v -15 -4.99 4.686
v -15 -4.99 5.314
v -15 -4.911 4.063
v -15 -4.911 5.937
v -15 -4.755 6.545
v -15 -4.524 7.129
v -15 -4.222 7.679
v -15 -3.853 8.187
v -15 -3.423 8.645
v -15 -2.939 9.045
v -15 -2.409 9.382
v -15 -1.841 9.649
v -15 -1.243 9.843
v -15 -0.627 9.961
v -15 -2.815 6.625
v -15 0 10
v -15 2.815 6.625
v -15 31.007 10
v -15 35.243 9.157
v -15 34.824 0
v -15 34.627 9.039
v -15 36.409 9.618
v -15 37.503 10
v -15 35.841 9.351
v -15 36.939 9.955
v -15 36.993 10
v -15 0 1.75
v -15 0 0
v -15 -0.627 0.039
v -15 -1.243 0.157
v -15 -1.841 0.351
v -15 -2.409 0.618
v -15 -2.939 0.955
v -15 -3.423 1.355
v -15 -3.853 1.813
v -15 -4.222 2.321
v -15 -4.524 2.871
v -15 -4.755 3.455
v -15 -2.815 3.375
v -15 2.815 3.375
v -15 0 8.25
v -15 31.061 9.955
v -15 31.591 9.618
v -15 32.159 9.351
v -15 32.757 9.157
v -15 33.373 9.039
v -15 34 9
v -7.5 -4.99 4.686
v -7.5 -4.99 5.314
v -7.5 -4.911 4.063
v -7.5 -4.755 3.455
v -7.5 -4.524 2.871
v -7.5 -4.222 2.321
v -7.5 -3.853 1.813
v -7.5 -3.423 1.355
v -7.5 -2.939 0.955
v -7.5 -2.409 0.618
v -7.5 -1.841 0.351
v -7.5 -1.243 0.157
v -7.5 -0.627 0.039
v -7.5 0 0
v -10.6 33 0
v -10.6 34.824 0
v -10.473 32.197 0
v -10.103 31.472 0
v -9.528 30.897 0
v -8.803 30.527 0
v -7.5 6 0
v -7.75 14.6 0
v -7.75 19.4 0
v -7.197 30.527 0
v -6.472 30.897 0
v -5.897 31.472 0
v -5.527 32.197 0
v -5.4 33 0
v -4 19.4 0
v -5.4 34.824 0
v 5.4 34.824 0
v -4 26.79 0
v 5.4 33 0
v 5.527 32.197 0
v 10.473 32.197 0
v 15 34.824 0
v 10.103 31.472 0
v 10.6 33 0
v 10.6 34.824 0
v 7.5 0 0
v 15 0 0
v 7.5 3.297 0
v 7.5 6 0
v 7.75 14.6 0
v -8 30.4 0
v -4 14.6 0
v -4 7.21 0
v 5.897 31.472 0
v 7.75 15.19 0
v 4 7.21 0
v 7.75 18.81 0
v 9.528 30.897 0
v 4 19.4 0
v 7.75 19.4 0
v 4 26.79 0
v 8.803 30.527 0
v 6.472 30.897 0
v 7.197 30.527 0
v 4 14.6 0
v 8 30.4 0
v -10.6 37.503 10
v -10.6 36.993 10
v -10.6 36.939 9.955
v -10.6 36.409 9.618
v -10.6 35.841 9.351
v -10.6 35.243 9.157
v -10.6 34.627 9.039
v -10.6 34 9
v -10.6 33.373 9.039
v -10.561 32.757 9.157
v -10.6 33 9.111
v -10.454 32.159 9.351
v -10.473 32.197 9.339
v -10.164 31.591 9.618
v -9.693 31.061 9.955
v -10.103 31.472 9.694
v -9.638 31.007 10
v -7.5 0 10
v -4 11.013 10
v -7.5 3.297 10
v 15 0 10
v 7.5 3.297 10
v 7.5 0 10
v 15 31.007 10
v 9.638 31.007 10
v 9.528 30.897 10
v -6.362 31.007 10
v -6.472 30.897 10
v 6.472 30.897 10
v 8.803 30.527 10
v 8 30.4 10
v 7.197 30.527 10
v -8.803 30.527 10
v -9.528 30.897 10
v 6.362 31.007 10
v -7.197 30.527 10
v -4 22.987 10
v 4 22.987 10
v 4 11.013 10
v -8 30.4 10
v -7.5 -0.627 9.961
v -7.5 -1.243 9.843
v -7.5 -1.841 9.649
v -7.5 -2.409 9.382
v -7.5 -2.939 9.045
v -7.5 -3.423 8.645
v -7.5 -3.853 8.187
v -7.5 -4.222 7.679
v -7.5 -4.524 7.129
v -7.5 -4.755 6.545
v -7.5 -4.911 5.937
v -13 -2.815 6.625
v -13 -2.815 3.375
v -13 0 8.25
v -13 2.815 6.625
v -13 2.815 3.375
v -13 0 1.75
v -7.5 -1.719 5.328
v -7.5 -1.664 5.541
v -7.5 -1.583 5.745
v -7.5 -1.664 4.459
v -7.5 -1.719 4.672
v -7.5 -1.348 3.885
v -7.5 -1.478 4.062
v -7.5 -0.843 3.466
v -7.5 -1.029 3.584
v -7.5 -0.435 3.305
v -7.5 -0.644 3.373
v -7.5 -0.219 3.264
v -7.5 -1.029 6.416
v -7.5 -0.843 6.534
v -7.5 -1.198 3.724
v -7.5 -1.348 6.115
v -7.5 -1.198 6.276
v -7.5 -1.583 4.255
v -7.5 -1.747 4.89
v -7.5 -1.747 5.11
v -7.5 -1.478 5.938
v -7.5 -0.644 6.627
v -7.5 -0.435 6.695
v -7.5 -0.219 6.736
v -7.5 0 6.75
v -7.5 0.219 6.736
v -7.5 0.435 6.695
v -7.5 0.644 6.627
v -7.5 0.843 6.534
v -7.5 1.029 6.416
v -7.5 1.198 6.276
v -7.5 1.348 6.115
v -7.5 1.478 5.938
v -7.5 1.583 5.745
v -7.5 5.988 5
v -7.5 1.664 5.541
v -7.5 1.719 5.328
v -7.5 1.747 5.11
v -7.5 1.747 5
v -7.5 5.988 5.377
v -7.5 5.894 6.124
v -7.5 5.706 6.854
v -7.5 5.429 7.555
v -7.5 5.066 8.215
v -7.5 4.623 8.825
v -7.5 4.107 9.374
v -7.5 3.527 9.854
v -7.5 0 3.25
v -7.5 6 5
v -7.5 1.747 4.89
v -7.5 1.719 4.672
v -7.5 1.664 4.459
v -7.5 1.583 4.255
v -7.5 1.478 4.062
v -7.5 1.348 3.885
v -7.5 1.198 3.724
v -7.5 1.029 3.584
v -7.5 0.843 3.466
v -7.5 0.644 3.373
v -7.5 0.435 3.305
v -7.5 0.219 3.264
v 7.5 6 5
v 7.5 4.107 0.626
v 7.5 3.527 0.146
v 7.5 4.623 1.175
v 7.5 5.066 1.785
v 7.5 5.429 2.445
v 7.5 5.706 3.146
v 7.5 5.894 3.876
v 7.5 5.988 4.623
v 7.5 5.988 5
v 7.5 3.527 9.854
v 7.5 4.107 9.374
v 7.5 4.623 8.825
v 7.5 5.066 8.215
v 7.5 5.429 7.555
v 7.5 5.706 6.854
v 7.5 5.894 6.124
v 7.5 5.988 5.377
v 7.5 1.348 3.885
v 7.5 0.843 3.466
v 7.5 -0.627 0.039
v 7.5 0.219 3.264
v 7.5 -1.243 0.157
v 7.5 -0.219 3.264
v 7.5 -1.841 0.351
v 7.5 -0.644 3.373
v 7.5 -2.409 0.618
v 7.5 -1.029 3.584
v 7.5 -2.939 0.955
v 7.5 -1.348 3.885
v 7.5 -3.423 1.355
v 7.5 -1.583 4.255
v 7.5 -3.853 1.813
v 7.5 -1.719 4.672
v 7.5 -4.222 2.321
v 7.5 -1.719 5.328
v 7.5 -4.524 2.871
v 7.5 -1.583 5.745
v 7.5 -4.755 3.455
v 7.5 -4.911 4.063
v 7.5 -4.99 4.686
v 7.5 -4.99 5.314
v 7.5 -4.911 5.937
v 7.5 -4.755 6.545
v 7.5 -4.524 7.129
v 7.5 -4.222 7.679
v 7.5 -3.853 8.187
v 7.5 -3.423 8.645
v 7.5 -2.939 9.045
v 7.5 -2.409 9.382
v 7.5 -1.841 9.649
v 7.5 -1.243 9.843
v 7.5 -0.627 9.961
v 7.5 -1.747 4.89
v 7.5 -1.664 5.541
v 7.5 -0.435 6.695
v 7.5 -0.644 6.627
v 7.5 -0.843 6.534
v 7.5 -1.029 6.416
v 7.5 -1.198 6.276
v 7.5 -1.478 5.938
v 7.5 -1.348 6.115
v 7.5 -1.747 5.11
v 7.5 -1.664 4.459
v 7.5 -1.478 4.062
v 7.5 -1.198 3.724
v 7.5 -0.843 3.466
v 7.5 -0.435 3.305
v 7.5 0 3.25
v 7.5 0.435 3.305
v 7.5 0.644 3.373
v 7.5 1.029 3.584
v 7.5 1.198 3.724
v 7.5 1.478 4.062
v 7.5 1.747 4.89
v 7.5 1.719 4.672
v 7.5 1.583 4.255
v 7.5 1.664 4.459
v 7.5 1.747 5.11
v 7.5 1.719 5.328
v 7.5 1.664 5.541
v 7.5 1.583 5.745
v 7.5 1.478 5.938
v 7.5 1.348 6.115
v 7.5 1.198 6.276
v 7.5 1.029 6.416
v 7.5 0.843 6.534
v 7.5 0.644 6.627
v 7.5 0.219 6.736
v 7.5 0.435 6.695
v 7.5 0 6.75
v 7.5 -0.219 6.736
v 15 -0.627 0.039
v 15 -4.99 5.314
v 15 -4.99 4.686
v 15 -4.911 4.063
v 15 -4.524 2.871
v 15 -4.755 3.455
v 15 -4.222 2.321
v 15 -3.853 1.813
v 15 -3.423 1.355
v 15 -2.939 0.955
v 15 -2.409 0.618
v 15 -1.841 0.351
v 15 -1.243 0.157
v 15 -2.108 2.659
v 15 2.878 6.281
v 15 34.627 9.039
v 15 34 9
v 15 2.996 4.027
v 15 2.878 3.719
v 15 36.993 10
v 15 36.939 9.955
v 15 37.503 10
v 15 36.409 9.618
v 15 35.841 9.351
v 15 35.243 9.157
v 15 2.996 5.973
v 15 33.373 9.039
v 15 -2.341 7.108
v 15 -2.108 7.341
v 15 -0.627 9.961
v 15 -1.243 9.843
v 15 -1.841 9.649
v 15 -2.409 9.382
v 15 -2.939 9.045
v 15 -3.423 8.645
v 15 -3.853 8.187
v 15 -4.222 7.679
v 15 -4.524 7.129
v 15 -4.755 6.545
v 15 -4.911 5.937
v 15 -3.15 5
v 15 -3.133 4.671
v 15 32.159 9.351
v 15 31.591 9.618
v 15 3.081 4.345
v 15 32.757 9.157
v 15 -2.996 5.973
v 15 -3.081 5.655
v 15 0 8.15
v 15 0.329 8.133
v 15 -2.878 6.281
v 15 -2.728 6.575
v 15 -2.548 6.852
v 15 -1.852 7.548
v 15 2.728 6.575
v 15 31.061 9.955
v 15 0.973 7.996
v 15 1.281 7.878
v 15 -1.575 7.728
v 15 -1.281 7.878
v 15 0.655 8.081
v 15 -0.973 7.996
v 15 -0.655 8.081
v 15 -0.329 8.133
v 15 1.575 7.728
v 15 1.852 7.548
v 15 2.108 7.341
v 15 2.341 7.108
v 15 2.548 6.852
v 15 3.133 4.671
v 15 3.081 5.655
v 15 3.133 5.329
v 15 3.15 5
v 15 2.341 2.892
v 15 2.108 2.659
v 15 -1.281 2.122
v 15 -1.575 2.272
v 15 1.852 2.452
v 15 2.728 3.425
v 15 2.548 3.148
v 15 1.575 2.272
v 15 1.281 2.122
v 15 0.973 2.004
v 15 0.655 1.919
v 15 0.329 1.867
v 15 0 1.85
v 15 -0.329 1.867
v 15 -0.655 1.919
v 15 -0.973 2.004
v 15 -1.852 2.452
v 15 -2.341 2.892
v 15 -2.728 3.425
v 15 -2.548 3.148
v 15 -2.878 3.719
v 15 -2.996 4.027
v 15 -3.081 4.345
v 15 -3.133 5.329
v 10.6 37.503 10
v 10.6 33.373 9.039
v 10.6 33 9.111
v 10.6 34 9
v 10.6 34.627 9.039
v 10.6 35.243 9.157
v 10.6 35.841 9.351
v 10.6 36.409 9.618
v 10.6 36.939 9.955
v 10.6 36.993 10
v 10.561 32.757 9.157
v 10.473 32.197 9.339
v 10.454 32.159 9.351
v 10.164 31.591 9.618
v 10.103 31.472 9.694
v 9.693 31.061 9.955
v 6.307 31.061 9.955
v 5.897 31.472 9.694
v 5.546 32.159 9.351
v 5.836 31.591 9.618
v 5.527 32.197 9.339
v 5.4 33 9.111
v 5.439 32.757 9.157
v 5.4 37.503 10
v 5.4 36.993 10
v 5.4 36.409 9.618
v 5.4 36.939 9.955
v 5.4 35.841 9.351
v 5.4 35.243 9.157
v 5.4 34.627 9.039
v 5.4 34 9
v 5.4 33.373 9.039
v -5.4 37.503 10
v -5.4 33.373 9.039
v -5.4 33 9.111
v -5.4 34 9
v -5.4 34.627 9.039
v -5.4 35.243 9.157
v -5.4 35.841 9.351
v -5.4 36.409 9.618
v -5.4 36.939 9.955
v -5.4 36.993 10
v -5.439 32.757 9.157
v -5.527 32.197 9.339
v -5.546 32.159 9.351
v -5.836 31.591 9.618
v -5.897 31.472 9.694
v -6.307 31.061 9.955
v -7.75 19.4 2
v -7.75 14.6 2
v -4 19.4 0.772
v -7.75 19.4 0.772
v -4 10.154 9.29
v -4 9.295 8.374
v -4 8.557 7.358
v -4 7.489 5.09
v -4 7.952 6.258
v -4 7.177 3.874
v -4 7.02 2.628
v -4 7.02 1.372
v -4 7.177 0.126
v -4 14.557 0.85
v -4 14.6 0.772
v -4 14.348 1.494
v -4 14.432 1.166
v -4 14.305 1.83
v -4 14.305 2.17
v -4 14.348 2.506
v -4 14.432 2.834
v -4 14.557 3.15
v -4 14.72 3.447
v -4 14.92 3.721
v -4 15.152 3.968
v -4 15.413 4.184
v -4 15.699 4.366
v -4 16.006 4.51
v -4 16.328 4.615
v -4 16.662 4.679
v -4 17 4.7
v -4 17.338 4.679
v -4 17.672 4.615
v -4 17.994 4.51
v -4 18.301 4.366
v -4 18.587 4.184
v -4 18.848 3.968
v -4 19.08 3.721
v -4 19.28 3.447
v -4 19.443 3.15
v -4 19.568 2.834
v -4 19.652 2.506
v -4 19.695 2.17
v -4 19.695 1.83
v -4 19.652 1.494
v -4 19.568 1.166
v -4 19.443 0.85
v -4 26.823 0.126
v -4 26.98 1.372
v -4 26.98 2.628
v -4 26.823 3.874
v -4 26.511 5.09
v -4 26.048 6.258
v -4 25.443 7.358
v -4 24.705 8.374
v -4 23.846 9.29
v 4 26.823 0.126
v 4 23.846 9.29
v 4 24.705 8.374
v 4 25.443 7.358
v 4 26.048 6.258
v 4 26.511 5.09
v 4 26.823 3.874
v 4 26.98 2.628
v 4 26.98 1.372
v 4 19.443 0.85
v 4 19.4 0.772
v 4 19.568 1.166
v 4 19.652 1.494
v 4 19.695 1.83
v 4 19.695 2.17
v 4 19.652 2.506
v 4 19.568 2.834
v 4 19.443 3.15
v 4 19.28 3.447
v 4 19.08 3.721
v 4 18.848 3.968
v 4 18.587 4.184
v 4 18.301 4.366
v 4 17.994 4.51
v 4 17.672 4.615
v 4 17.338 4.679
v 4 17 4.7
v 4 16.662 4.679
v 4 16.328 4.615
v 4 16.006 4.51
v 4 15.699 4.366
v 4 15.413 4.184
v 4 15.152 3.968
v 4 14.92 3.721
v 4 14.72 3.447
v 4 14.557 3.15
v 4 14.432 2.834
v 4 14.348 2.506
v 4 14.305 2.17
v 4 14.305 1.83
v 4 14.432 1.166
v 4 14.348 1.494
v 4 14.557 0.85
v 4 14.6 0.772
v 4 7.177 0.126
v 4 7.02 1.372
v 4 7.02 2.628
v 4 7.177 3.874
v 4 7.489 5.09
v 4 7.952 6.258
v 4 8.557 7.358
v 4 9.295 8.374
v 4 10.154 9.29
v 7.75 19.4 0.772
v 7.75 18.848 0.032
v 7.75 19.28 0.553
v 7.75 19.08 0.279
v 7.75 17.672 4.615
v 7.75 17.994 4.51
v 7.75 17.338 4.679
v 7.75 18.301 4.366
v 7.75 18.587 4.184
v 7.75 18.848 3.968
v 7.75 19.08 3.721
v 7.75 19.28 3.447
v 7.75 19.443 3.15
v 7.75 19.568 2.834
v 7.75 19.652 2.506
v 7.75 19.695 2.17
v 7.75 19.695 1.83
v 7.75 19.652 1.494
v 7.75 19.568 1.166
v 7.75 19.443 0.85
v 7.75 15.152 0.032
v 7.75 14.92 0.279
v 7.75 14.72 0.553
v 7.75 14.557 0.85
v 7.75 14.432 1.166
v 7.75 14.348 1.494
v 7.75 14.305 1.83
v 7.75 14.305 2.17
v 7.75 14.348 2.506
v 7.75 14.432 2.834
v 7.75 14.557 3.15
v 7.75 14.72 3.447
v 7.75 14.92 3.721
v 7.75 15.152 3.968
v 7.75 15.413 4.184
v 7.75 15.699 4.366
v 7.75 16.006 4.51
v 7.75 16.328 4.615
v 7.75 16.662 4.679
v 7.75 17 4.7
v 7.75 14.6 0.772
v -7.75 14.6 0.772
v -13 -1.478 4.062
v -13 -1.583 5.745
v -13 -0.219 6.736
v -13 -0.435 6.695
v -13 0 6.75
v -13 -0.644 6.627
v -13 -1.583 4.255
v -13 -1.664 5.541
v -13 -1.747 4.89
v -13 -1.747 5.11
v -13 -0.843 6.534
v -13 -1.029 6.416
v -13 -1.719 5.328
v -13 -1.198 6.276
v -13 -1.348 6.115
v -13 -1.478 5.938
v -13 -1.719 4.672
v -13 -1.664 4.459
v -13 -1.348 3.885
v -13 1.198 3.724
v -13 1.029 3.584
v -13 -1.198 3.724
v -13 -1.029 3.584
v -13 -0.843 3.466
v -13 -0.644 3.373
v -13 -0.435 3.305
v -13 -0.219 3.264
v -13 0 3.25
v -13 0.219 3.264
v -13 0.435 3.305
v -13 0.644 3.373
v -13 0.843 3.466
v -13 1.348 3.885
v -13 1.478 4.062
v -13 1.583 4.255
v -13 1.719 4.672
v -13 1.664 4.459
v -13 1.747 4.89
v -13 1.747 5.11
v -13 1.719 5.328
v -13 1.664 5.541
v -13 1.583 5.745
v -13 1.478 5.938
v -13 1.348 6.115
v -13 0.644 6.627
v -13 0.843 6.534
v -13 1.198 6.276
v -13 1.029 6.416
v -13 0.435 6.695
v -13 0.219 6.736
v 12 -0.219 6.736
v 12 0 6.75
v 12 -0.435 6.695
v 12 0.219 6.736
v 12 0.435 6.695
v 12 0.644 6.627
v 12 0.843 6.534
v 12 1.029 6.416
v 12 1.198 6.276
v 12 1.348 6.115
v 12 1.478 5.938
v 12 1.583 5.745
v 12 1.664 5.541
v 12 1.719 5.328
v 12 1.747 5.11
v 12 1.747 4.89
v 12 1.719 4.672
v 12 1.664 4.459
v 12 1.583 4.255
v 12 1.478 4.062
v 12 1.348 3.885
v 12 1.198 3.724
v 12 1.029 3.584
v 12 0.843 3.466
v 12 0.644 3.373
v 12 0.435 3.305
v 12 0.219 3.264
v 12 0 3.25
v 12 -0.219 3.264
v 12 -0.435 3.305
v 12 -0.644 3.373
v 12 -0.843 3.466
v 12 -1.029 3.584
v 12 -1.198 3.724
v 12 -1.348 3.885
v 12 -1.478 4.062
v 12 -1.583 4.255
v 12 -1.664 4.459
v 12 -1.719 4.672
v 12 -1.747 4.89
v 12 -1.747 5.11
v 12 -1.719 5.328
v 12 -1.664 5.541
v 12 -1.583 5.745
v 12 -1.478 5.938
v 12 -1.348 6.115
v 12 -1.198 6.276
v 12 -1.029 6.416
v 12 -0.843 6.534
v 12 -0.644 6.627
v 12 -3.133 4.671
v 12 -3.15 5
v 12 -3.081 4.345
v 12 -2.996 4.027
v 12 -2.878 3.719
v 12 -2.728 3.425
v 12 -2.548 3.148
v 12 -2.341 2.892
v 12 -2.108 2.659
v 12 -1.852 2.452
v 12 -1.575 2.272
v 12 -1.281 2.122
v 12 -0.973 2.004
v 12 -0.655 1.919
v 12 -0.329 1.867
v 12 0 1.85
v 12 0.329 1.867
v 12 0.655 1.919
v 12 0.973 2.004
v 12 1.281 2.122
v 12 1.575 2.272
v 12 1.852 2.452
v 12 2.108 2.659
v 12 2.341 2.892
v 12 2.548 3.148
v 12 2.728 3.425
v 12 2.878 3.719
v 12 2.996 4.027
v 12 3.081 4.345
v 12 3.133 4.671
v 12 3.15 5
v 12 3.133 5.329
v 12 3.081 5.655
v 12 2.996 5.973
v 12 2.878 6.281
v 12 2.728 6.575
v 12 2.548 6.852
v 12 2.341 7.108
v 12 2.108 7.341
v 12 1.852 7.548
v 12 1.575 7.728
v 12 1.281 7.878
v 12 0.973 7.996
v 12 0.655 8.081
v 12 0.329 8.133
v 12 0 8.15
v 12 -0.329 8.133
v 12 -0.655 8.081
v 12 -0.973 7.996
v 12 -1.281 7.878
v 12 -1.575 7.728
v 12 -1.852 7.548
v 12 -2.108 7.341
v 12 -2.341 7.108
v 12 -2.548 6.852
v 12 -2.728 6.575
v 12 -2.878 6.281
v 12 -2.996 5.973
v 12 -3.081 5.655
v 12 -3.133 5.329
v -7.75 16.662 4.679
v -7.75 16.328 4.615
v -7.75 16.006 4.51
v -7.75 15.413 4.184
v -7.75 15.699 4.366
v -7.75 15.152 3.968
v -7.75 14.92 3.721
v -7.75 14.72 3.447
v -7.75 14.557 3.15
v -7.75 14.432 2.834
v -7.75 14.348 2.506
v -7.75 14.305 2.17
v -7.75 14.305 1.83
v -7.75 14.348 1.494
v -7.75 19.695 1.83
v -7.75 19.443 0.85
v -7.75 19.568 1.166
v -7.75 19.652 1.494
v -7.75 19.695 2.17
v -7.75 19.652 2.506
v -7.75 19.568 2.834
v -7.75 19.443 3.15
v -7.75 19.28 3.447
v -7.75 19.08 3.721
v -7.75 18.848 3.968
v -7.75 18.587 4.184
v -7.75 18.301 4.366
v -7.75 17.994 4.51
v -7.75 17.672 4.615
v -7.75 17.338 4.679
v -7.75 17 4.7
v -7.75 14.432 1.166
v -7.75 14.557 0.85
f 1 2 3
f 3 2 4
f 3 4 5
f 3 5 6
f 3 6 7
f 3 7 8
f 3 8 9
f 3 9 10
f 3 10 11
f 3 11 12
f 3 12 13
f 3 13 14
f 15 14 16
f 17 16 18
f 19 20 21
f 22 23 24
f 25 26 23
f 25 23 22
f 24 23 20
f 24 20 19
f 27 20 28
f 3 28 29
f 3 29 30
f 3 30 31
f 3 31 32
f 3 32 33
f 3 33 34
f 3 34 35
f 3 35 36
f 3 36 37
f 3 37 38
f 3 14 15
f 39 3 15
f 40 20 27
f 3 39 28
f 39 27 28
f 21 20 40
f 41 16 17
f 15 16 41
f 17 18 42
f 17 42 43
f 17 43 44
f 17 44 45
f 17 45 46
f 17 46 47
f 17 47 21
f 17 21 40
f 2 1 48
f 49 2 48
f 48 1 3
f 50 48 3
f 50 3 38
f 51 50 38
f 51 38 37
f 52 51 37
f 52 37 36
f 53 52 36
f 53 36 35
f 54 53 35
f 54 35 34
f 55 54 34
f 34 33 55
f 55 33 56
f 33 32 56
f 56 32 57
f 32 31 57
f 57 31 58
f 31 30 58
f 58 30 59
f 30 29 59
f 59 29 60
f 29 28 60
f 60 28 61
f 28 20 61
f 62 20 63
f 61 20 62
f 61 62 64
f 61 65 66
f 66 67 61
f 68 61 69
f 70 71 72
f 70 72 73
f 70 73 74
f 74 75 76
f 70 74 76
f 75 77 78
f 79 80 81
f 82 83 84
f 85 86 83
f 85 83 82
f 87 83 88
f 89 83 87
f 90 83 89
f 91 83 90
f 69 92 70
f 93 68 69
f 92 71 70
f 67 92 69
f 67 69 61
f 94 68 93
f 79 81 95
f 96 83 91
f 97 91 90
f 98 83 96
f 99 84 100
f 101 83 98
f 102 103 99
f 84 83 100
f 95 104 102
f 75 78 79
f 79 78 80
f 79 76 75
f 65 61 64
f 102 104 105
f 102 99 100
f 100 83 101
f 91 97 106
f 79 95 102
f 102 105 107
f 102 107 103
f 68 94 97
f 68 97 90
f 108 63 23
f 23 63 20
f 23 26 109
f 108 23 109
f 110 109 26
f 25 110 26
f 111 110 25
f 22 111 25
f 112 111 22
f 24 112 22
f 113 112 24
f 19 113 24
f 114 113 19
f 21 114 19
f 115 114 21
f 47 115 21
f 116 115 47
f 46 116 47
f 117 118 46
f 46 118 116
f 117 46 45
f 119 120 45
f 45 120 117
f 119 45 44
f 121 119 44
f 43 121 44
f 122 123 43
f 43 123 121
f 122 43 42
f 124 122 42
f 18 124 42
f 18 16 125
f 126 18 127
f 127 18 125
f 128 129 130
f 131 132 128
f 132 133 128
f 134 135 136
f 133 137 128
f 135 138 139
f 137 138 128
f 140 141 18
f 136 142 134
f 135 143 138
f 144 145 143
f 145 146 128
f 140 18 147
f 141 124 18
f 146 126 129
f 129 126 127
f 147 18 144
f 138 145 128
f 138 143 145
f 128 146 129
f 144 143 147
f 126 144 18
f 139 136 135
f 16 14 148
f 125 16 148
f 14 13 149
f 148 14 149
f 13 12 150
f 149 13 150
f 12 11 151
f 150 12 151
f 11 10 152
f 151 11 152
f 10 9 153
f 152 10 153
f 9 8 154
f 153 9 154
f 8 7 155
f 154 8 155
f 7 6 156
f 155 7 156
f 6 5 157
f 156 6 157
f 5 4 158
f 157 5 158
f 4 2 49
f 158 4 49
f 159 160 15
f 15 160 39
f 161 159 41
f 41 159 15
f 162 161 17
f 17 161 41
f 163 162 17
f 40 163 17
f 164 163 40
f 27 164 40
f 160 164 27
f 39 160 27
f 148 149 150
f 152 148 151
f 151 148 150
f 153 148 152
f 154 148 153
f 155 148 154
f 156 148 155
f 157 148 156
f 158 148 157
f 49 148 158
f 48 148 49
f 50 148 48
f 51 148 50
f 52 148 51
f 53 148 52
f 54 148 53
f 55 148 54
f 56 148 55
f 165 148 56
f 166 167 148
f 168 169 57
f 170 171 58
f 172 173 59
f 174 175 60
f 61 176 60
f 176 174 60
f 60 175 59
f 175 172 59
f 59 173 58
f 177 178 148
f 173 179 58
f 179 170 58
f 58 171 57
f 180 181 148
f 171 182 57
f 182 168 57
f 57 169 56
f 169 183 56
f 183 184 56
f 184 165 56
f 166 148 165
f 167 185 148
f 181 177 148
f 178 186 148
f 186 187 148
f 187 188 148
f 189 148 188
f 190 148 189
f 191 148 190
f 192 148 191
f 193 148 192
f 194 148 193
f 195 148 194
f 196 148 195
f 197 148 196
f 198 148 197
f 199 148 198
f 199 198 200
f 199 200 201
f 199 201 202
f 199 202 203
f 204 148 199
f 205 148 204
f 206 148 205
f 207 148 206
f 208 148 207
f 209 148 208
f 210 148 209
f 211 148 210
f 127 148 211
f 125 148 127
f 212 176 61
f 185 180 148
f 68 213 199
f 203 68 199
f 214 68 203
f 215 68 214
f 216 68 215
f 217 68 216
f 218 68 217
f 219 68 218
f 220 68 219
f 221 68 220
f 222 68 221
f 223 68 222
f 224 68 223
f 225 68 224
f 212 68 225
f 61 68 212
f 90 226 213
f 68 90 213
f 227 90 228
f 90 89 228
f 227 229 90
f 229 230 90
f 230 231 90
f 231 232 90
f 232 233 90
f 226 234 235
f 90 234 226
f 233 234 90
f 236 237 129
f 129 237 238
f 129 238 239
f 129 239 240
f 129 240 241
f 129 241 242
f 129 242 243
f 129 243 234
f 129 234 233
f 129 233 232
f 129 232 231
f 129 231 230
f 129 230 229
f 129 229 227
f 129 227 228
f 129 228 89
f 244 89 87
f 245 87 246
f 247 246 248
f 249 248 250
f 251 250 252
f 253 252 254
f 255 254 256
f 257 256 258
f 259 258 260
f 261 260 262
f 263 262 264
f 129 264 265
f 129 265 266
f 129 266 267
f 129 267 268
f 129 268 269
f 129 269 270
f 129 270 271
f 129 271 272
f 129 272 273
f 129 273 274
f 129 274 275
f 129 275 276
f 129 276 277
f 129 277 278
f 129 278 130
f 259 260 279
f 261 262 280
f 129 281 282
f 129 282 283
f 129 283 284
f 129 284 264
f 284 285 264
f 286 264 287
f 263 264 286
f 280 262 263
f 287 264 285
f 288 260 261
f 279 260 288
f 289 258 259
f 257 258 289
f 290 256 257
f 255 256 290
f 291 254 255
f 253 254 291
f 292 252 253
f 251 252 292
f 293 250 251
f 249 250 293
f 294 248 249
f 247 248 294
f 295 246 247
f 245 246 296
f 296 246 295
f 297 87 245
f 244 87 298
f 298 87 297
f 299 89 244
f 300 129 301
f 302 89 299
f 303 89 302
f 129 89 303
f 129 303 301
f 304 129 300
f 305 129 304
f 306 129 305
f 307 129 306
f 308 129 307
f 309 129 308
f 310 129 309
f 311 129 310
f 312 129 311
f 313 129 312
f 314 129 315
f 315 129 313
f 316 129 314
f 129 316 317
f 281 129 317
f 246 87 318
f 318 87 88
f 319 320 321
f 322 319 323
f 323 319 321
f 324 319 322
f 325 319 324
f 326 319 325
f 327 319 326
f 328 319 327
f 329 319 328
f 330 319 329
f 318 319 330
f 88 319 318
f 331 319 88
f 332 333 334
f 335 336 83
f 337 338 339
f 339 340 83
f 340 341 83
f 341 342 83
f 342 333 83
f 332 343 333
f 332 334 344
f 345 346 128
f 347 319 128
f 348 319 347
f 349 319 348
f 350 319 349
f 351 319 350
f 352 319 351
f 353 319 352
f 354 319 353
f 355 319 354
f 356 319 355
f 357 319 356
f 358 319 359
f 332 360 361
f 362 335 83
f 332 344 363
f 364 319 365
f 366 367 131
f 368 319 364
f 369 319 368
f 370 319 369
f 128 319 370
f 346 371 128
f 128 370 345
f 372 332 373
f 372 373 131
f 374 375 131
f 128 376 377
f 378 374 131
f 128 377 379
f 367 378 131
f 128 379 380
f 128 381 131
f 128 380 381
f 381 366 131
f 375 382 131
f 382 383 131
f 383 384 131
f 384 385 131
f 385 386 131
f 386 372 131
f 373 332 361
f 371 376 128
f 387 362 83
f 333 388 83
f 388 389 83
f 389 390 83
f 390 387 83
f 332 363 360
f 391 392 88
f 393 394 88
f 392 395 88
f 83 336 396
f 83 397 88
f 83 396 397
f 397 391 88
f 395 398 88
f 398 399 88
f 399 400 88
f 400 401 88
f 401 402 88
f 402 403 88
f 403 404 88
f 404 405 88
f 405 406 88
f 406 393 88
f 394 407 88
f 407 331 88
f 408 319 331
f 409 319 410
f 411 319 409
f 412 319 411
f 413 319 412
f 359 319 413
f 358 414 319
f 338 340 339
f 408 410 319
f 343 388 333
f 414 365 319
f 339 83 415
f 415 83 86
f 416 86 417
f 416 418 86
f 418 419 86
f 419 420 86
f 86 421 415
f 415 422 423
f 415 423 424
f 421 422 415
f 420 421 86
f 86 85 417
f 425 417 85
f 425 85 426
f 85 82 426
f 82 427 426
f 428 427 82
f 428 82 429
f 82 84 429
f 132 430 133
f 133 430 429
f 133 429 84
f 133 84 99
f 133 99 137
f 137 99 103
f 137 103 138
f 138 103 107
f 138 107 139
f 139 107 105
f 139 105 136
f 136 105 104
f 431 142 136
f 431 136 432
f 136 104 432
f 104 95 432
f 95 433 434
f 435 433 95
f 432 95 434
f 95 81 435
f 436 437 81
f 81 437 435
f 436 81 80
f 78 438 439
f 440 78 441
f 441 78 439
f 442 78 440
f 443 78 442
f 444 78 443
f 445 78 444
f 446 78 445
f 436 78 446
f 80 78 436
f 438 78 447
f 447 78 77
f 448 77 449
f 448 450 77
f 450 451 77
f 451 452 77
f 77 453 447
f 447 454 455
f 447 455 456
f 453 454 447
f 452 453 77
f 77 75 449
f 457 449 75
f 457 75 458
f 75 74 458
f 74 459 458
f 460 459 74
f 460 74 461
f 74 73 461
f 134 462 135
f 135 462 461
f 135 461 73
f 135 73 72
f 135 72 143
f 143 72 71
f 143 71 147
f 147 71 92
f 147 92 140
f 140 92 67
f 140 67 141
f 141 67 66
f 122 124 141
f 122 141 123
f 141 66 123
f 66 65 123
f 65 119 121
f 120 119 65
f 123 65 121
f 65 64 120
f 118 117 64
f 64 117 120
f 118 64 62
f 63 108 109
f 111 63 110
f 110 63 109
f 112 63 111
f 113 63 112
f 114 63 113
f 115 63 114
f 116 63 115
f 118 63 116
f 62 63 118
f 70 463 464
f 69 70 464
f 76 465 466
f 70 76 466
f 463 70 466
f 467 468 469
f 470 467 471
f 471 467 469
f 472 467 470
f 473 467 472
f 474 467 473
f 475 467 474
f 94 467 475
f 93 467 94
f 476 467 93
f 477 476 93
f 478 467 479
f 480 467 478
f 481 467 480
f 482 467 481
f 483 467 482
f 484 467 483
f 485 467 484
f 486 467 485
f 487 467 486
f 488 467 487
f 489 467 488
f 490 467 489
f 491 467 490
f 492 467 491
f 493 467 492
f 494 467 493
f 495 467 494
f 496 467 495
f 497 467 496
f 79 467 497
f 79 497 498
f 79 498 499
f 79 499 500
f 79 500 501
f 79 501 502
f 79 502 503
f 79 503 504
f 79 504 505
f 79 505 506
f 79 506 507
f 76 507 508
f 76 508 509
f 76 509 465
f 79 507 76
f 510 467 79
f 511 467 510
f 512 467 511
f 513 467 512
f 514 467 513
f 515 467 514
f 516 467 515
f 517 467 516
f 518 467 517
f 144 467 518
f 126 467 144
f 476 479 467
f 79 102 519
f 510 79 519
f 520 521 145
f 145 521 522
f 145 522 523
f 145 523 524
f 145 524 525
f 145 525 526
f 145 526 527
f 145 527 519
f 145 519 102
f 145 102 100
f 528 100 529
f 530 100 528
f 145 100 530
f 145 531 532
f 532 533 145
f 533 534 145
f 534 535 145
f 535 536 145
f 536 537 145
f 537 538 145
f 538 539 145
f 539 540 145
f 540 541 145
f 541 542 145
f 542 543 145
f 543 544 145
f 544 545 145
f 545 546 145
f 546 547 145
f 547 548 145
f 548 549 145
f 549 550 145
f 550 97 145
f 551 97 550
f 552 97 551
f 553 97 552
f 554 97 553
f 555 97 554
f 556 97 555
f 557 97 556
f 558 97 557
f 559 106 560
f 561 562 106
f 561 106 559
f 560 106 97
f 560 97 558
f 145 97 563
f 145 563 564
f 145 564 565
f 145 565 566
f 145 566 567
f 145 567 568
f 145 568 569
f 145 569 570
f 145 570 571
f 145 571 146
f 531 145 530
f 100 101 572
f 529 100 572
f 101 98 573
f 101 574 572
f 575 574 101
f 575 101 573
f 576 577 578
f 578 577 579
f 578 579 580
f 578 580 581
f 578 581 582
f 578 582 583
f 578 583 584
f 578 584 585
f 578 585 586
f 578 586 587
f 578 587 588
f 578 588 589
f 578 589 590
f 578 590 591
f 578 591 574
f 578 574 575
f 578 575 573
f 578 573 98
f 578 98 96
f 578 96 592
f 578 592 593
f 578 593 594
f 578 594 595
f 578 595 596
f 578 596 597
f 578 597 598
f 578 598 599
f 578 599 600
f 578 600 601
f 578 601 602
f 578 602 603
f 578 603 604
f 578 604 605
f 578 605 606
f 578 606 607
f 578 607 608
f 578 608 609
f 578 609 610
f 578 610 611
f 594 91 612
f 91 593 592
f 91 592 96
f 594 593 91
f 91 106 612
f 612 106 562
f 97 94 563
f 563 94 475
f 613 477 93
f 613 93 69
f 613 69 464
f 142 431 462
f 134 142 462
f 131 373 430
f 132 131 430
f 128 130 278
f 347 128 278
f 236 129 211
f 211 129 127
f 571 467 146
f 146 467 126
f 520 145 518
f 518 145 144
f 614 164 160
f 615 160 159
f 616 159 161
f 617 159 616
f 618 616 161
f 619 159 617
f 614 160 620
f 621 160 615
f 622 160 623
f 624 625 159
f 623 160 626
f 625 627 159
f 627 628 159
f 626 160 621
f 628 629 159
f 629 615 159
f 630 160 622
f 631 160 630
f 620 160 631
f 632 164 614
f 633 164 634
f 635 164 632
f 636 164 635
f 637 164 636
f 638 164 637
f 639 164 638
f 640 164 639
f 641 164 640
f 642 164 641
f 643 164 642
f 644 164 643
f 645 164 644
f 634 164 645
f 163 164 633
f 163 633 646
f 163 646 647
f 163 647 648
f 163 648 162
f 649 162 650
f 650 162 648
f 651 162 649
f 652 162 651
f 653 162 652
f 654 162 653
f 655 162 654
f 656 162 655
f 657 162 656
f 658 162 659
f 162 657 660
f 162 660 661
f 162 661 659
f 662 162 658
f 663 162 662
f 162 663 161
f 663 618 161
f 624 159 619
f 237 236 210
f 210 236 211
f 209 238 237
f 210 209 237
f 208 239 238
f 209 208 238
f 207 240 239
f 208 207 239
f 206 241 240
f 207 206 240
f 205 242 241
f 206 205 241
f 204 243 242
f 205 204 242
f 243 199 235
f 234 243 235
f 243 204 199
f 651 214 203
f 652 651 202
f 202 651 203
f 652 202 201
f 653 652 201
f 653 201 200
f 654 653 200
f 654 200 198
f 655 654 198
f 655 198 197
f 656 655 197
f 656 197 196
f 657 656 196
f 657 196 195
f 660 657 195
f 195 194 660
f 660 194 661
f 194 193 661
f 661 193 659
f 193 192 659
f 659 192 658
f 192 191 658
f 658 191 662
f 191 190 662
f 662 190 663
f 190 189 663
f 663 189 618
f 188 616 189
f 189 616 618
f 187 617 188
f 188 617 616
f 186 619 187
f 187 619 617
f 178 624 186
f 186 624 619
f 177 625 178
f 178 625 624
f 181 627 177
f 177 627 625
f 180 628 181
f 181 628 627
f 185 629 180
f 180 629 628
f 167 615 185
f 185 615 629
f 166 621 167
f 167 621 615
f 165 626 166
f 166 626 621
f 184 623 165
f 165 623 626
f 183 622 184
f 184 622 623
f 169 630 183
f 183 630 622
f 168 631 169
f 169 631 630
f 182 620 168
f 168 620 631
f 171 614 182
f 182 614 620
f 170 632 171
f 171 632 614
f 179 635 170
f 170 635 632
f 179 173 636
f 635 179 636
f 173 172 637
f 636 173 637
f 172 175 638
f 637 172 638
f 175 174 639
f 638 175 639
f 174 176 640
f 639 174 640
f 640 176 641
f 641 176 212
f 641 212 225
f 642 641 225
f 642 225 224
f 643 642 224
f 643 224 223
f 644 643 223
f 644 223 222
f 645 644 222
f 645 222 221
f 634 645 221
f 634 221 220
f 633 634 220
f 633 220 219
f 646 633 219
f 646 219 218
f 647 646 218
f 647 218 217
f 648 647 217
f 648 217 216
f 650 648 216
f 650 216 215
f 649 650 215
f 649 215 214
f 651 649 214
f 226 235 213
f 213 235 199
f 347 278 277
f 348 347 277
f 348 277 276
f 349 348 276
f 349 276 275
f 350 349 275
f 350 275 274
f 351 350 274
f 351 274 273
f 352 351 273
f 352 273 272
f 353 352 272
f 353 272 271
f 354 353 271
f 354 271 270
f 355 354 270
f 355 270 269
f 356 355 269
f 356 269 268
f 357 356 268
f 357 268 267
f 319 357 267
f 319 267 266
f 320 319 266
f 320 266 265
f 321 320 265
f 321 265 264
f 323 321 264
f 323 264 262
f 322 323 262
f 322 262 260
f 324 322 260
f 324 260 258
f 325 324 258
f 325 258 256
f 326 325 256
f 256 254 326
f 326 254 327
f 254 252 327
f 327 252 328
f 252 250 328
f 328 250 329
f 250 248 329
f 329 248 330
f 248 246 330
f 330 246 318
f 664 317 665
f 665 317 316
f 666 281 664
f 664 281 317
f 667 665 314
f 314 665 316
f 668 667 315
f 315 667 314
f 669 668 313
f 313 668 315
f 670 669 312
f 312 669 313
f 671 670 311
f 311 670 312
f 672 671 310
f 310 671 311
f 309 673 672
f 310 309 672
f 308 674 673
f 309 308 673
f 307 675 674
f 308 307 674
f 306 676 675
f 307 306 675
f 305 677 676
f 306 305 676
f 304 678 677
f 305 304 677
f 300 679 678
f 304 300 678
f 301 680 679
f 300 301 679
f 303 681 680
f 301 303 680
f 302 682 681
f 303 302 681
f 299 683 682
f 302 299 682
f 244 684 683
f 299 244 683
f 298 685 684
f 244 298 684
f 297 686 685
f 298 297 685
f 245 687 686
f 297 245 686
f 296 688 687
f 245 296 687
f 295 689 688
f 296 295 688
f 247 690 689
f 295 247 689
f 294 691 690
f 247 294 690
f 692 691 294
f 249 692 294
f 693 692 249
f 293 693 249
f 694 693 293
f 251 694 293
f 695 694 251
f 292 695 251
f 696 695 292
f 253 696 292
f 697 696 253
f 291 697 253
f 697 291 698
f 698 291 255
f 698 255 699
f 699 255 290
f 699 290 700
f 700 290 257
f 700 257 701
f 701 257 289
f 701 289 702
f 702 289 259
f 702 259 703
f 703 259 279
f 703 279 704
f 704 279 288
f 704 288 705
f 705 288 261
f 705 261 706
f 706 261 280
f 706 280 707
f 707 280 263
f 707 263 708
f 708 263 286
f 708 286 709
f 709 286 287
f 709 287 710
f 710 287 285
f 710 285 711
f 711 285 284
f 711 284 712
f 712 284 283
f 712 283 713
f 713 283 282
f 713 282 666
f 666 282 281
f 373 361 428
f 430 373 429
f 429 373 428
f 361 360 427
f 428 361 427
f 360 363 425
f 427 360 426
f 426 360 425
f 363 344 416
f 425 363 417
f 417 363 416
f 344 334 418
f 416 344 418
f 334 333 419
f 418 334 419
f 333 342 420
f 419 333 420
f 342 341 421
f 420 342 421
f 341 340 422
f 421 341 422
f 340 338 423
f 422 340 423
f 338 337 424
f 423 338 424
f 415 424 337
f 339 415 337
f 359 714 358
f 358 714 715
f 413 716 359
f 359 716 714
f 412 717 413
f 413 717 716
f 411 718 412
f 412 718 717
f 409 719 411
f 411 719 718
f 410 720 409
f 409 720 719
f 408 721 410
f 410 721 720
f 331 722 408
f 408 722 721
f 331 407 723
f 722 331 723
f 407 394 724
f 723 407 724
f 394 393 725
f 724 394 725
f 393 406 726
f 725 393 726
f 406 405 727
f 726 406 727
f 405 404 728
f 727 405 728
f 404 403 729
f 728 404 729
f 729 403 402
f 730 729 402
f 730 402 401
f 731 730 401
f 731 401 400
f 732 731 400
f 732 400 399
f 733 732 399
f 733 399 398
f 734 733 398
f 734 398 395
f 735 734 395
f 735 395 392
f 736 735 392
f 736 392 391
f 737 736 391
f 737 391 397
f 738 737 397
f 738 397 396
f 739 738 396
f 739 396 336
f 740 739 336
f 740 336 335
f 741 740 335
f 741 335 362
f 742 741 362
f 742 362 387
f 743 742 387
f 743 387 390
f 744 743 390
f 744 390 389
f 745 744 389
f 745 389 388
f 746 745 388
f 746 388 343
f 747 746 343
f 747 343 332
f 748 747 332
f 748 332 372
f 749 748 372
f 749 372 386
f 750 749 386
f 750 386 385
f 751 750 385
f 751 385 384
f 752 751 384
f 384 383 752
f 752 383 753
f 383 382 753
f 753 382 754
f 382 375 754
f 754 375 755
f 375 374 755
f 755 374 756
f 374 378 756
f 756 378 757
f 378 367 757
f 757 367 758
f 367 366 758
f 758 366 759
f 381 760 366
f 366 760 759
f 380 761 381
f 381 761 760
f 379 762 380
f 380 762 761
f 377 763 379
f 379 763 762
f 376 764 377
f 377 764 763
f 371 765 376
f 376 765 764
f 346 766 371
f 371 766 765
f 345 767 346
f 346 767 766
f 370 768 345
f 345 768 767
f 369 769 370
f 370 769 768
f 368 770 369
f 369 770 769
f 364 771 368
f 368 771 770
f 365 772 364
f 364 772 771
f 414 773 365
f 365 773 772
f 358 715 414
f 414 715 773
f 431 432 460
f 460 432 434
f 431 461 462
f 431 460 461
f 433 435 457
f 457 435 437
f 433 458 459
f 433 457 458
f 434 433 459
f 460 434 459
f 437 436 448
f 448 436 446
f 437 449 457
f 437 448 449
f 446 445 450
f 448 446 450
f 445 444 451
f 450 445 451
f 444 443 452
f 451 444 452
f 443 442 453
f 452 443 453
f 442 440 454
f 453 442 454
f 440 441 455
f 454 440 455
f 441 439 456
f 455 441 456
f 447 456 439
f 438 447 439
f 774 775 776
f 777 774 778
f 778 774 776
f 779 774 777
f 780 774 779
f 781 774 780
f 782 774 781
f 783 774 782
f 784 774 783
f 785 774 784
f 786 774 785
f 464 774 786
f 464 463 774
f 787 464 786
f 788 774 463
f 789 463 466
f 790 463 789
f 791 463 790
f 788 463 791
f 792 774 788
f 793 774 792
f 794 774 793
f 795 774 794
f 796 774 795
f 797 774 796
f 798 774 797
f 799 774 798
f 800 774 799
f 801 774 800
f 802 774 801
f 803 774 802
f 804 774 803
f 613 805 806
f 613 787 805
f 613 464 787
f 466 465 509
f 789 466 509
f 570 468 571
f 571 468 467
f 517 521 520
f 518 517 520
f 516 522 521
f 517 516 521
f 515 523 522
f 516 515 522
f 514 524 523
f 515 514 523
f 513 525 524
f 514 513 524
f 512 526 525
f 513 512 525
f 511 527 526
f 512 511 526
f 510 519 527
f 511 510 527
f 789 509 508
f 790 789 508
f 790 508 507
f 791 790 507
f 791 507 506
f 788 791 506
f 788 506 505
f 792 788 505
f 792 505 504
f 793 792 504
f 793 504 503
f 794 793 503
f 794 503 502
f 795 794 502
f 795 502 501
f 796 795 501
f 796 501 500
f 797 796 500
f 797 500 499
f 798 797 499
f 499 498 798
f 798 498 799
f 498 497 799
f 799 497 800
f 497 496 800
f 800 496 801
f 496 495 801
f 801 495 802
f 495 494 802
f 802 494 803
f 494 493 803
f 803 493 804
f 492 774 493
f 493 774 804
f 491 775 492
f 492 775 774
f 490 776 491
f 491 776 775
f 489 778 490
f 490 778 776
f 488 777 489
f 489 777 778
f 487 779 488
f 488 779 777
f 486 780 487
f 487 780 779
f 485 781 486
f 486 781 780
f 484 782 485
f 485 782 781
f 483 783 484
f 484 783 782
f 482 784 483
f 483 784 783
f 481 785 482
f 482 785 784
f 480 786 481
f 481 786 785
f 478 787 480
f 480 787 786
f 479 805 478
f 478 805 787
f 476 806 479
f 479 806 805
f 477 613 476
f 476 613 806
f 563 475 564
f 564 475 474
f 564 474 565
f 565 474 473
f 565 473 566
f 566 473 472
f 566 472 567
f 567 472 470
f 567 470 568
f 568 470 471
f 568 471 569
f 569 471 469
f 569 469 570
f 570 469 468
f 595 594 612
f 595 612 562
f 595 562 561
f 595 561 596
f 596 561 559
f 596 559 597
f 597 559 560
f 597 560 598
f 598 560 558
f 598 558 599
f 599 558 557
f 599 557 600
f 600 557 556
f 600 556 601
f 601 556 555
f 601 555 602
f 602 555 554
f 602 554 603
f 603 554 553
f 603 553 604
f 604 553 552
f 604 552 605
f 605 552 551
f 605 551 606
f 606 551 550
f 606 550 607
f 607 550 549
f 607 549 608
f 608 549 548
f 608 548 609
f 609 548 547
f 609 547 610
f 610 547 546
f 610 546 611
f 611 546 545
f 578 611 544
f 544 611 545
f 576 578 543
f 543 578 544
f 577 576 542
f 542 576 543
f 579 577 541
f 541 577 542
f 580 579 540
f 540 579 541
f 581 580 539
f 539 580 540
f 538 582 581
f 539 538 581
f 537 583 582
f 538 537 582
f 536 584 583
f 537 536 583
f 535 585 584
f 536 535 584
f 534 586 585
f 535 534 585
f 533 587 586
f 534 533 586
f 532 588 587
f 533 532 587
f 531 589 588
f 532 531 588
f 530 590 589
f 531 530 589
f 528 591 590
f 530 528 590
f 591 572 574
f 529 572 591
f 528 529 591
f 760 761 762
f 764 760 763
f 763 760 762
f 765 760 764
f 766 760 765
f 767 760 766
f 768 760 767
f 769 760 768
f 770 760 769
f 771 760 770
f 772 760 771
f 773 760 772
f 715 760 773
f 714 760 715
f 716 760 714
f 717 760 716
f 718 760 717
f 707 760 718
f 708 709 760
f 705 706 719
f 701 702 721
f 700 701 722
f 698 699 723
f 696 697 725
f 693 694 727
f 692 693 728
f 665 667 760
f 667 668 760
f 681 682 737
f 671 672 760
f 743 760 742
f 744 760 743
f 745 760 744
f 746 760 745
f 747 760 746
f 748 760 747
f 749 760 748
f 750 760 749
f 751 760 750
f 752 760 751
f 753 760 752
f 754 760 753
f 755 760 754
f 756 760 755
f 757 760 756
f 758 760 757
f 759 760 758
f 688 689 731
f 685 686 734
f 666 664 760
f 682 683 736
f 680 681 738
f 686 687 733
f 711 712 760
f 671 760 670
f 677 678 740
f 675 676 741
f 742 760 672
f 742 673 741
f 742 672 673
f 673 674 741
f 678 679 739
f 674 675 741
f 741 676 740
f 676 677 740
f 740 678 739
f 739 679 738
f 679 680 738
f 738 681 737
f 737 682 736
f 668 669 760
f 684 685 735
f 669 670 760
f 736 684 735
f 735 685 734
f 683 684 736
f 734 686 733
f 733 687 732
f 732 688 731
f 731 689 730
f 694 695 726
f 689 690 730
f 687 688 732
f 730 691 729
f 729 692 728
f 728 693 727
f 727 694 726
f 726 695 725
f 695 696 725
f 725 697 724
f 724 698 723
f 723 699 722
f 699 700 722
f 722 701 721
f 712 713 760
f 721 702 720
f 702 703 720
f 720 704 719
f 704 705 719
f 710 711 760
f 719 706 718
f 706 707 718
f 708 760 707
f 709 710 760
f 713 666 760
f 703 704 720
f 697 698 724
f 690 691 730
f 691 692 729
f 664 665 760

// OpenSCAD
module rodamiento()
{
rotate([0,90,0])cylinder(r = 2.7, h = 15.5, $fn = 50, center = true);
rotate([0,90,0])cylinder(r = 10, h = 8, $fn = 50, center = true);
translate([0,0,-2])cube([15.5,4.8,4],center = true);
}

difference()
{
	union()
	{
		hull()
		{
			translate([0,0,5])rotate([0,90,0])cylinder(r = 5, h = 30, $fn = 50, center = true);//positivo eje
			translate([-15,34,0])cube([30,5,10]);
		}
		
	}
	union()
	{
		translate([0,17,2])rodamiento();
		translate([-7.45,15,-1])cube([14.90,4,3]);//entrada eje rodamiento
		translate([0,34,14])rotate([0,90,0])cylinder(r = 5, h = 50, $fn = 50, center = true);
		translate([0,0,5])rotate([0,90,0])cylinder(r = 1.75, h = 50, $fn = 50, center = true);// eje
		translate([0,0,5])rotate([0,90,0])cylinder(r = 6, h = 15, $fn = 50, center = true);//corte eje	
		translate([-16,0,5])rotate([0,90,0])cylinder(r = 3.25, h = 3, $fn = 6);
		translate([12,0,5])rotate([0,90,0])cylinder(r = 3.15, h = 4, $fn = 60);
		translate([-7.5,0,-1])cube([15,6,6]);
		translate([0,40,0])rotate([-15,0,0])cube([40,10,30],center=true);
		hull()
		{
			translate([-8,33,-1])cylinder(r=2.6,h=20,$fn= 20);
			translate([-8,44,-1])cylinder(r=2.6,h=20,$fn= 20);
		}
		hull()
		{
			translate([8,33,-1])cylinder(r=2.6,h=20,$fn= 20);
			translate([8,44,-1])cylinder(r=2.6,h=20,$fn= 20);
		}
	}
}
